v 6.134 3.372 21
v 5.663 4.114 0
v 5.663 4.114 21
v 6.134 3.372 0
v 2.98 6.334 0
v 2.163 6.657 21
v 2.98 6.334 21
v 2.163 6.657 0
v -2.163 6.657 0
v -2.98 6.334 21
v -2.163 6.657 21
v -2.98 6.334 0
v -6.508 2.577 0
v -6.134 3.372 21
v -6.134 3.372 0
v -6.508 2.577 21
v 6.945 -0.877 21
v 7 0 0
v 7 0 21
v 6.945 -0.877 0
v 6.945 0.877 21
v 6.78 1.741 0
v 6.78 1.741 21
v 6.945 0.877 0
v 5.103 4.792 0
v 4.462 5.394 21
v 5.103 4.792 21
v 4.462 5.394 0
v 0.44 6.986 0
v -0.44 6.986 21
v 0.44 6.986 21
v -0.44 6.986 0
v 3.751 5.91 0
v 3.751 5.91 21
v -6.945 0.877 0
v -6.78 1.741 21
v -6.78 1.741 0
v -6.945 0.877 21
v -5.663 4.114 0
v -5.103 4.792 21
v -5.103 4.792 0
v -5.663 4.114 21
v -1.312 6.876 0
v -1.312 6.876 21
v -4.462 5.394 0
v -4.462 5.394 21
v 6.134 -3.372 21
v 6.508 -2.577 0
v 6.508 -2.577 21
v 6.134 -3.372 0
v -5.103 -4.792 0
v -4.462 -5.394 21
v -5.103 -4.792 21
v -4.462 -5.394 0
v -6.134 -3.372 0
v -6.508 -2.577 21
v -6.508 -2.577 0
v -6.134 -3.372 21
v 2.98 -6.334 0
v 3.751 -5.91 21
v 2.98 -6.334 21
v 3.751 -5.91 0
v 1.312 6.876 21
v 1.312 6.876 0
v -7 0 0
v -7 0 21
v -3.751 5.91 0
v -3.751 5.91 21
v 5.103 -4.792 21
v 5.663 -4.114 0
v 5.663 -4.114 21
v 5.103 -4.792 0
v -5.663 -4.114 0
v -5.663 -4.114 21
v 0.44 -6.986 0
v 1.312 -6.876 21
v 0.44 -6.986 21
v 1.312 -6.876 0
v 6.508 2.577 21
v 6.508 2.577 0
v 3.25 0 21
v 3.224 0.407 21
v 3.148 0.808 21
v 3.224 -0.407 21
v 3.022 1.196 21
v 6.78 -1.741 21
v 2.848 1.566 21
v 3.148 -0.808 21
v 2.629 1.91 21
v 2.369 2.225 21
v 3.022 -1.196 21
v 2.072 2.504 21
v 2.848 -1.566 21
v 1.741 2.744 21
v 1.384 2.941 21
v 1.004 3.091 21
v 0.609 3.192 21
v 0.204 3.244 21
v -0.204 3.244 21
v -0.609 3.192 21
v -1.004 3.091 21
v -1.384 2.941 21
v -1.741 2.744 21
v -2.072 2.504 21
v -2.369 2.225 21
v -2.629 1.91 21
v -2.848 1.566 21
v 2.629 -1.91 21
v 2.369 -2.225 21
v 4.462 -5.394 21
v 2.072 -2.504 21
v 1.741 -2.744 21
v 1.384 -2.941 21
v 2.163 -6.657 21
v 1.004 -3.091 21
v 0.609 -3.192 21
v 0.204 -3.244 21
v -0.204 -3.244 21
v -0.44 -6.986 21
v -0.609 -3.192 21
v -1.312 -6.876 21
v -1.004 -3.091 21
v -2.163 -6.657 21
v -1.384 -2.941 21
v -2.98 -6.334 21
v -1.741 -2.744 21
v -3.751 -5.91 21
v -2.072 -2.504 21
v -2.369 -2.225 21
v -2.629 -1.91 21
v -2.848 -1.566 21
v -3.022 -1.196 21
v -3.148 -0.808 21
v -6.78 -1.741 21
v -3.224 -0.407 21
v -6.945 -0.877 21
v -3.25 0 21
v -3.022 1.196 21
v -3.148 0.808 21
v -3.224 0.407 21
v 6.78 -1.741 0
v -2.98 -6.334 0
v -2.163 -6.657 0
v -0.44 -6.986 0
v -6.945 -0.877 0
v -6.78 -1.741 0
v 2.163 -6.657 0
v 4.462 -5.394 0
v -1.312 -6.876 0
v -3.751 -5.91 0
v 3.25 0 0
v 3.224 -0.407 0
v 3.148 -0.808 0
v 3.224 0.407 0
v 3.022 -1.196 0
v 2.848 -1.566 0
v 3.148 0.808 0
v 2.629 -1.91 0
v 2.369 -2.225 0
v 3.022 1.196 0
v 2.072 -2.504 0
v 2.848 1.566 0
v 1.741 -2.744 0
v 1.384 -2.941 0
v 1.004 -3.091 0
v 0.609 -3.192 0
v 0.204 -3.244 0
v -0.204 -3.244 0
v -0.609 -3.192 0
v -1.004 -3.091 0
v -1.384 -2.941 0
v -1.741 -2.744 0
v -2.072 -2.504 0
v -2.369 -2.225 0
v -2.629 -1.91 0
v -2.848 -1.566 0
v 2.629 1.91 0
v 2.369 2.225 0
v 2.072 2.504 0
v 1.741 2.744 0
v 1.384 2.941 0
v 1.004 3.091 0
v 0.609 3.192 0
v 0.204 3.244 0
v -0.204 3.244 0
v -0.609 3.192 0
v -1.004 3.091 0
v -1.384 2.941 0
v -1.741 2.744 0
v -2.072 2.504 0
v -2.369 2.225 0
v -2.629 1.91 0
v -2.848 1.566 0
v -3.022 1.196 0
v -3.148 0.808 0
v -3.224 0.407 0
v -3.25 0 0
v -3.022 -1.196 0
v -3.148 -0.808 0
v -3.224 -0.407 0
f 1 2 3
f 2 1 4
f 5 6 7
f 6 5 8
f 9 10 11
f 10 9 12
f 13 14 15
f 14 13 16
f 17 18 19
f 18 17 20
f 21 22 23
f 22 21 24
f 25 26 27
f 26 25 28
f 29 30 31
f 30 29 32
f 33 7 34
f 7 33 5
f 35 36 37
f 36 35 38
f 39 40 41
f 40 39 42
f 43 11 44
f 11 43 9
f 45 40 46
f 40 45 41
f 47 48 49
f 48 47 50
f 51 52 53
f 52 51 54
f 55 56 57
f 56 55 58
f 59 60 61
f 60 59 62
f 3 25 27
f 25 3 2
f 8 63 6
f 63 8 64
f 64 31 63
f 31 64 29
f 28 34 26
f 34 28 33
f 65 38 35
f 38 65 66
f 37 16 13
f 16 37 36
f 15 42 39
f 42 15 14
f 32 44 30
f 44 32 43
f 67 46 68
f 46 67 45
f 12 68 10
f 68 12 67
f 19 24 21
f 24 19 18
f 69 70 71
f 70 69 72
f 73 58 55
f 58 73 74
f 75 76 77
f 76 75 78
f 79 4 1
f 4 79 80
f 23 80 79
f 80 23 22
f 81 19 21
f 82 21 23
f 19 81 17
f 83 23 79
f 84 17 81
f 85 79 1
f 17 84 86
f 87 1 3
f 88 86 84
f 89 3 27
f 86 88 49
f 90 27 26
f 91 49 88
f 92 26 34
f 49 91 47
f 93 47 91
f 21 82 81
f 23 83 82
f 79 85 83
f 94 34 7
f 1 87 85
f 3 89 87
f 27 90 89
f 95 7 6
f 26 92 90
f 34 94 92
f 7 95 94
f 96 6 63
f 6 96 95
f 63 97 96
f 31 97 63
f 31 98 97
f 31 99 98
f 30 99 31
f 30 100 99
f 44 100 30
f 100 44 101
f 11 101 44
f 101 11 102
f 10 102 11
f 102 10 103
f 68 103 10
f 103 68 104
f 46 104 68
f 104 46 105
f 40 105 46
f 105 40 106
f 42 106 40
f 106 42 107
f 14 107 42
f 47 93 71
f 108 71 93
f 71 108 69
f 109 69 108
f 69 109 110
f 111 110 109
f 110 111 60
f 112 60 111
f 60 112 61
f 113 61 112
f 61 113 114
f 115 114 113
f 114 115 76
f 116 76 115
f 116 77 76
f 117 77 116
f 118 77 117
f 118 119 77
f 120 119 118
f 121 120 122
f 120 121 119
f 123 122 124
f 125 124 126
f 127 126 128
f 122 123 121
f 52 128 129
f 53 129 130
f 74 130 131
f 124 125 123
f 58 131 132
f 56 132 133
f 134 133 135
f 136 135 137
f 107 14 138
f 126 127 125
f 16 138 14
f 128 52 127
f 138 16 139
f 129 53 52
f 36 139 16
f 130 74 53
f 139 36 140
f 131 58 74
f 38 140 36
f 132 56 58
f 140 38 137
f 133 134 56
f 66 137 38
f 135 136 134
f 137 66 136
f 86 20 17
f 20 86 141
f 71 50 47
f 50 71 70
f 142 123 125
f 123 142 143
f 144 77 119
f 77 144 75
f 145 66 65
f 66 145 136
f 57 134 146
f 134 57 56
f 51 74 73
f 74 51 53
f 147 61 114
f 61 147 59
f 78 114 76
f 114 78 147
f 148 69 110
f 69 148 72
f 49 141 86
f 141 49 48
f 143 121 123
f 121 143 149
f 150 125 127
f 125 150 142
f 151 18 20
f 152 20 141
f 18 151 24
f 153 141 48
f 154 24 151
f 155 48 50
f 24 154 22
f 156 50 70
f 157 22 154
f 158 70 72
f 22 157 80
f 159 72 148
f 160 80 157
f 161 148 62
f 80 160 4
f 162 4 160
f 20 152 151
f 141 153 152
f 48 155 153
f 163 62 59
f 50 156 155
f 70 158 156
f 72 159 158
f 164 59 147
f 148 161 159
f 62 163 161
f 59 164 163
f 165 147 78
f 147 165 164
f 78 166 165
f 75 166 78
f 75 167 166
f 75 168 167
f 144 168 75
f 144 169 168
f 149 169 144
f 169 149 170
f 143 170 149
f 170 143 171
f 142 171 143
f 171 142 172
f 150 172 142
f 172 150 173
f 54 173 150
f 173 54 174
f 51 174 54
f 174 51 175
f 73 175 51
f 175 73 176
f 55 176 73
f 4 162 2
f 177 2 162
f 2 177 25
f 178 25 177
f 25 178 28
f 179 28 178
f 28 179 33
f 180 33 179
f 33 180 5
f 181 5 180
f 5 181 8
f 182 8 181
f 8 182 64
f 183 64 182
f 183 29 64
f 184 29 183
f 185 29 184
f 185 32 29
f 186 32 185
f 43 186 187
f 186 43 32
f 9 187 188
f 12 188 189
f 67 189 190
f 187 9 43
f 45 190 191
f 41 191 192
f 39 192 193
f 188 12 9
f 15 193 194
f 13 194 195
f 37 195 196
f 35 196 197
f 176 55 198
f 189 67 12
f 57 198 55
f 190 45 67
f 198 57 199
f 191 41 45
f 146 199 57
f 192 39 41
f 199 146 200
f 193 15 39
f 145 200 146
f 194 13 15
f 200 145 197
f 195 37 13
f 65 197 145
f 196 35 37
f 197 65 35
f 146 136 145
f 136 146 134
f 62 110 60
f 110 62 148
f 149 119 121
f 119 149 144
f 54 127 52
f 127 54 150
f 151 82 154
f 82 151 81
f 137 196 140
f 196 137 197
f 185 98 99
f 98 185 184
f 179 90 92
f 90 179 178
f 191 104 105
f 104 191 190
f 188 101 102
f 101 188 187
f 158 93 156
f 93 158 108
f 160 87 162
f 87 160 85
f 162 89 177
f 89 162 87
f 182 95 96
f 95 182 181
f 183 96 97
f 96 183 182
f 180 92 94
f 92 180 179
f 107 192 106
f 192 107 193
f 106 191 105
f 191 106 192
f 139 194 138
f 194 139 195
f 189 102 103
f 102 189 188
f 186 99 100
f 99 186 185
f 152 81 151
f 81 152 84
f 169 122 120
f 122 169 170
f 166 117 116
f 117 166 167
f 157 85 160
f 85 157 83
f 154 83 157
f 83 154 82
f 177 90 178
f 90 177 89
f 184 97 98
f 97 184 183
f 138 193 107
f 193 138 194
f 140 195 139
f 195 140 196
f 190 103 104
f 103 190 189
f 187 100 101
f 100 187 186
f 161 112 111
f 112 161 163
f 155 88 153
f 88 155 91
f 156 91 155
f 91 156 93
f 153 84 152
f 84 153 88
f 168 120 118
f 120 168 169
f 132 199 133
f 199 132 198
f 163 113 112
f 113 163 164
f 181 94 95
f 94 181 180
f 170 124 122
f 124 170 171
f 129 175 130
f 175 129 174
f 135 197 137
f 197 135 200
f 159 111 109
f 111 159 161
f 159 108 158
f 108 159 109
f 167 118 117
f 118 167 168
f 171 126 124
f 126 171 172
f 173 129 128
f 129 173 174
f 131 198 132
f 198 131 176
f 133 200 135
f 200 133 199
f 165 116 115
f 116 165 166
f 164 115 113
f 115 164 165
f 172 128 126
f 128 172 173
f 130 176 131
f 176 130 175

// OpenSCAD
$fn = 50;


difference() {
	union() {
		cylinder(h = 21, r = 7.0000000000);
	}
	union() {
		translate(v = [0.0000000000, 0.0000000000, -100.0000000000]) {
			cylinder(h = 200, r = 3.2500000000);
		}
	}
}
